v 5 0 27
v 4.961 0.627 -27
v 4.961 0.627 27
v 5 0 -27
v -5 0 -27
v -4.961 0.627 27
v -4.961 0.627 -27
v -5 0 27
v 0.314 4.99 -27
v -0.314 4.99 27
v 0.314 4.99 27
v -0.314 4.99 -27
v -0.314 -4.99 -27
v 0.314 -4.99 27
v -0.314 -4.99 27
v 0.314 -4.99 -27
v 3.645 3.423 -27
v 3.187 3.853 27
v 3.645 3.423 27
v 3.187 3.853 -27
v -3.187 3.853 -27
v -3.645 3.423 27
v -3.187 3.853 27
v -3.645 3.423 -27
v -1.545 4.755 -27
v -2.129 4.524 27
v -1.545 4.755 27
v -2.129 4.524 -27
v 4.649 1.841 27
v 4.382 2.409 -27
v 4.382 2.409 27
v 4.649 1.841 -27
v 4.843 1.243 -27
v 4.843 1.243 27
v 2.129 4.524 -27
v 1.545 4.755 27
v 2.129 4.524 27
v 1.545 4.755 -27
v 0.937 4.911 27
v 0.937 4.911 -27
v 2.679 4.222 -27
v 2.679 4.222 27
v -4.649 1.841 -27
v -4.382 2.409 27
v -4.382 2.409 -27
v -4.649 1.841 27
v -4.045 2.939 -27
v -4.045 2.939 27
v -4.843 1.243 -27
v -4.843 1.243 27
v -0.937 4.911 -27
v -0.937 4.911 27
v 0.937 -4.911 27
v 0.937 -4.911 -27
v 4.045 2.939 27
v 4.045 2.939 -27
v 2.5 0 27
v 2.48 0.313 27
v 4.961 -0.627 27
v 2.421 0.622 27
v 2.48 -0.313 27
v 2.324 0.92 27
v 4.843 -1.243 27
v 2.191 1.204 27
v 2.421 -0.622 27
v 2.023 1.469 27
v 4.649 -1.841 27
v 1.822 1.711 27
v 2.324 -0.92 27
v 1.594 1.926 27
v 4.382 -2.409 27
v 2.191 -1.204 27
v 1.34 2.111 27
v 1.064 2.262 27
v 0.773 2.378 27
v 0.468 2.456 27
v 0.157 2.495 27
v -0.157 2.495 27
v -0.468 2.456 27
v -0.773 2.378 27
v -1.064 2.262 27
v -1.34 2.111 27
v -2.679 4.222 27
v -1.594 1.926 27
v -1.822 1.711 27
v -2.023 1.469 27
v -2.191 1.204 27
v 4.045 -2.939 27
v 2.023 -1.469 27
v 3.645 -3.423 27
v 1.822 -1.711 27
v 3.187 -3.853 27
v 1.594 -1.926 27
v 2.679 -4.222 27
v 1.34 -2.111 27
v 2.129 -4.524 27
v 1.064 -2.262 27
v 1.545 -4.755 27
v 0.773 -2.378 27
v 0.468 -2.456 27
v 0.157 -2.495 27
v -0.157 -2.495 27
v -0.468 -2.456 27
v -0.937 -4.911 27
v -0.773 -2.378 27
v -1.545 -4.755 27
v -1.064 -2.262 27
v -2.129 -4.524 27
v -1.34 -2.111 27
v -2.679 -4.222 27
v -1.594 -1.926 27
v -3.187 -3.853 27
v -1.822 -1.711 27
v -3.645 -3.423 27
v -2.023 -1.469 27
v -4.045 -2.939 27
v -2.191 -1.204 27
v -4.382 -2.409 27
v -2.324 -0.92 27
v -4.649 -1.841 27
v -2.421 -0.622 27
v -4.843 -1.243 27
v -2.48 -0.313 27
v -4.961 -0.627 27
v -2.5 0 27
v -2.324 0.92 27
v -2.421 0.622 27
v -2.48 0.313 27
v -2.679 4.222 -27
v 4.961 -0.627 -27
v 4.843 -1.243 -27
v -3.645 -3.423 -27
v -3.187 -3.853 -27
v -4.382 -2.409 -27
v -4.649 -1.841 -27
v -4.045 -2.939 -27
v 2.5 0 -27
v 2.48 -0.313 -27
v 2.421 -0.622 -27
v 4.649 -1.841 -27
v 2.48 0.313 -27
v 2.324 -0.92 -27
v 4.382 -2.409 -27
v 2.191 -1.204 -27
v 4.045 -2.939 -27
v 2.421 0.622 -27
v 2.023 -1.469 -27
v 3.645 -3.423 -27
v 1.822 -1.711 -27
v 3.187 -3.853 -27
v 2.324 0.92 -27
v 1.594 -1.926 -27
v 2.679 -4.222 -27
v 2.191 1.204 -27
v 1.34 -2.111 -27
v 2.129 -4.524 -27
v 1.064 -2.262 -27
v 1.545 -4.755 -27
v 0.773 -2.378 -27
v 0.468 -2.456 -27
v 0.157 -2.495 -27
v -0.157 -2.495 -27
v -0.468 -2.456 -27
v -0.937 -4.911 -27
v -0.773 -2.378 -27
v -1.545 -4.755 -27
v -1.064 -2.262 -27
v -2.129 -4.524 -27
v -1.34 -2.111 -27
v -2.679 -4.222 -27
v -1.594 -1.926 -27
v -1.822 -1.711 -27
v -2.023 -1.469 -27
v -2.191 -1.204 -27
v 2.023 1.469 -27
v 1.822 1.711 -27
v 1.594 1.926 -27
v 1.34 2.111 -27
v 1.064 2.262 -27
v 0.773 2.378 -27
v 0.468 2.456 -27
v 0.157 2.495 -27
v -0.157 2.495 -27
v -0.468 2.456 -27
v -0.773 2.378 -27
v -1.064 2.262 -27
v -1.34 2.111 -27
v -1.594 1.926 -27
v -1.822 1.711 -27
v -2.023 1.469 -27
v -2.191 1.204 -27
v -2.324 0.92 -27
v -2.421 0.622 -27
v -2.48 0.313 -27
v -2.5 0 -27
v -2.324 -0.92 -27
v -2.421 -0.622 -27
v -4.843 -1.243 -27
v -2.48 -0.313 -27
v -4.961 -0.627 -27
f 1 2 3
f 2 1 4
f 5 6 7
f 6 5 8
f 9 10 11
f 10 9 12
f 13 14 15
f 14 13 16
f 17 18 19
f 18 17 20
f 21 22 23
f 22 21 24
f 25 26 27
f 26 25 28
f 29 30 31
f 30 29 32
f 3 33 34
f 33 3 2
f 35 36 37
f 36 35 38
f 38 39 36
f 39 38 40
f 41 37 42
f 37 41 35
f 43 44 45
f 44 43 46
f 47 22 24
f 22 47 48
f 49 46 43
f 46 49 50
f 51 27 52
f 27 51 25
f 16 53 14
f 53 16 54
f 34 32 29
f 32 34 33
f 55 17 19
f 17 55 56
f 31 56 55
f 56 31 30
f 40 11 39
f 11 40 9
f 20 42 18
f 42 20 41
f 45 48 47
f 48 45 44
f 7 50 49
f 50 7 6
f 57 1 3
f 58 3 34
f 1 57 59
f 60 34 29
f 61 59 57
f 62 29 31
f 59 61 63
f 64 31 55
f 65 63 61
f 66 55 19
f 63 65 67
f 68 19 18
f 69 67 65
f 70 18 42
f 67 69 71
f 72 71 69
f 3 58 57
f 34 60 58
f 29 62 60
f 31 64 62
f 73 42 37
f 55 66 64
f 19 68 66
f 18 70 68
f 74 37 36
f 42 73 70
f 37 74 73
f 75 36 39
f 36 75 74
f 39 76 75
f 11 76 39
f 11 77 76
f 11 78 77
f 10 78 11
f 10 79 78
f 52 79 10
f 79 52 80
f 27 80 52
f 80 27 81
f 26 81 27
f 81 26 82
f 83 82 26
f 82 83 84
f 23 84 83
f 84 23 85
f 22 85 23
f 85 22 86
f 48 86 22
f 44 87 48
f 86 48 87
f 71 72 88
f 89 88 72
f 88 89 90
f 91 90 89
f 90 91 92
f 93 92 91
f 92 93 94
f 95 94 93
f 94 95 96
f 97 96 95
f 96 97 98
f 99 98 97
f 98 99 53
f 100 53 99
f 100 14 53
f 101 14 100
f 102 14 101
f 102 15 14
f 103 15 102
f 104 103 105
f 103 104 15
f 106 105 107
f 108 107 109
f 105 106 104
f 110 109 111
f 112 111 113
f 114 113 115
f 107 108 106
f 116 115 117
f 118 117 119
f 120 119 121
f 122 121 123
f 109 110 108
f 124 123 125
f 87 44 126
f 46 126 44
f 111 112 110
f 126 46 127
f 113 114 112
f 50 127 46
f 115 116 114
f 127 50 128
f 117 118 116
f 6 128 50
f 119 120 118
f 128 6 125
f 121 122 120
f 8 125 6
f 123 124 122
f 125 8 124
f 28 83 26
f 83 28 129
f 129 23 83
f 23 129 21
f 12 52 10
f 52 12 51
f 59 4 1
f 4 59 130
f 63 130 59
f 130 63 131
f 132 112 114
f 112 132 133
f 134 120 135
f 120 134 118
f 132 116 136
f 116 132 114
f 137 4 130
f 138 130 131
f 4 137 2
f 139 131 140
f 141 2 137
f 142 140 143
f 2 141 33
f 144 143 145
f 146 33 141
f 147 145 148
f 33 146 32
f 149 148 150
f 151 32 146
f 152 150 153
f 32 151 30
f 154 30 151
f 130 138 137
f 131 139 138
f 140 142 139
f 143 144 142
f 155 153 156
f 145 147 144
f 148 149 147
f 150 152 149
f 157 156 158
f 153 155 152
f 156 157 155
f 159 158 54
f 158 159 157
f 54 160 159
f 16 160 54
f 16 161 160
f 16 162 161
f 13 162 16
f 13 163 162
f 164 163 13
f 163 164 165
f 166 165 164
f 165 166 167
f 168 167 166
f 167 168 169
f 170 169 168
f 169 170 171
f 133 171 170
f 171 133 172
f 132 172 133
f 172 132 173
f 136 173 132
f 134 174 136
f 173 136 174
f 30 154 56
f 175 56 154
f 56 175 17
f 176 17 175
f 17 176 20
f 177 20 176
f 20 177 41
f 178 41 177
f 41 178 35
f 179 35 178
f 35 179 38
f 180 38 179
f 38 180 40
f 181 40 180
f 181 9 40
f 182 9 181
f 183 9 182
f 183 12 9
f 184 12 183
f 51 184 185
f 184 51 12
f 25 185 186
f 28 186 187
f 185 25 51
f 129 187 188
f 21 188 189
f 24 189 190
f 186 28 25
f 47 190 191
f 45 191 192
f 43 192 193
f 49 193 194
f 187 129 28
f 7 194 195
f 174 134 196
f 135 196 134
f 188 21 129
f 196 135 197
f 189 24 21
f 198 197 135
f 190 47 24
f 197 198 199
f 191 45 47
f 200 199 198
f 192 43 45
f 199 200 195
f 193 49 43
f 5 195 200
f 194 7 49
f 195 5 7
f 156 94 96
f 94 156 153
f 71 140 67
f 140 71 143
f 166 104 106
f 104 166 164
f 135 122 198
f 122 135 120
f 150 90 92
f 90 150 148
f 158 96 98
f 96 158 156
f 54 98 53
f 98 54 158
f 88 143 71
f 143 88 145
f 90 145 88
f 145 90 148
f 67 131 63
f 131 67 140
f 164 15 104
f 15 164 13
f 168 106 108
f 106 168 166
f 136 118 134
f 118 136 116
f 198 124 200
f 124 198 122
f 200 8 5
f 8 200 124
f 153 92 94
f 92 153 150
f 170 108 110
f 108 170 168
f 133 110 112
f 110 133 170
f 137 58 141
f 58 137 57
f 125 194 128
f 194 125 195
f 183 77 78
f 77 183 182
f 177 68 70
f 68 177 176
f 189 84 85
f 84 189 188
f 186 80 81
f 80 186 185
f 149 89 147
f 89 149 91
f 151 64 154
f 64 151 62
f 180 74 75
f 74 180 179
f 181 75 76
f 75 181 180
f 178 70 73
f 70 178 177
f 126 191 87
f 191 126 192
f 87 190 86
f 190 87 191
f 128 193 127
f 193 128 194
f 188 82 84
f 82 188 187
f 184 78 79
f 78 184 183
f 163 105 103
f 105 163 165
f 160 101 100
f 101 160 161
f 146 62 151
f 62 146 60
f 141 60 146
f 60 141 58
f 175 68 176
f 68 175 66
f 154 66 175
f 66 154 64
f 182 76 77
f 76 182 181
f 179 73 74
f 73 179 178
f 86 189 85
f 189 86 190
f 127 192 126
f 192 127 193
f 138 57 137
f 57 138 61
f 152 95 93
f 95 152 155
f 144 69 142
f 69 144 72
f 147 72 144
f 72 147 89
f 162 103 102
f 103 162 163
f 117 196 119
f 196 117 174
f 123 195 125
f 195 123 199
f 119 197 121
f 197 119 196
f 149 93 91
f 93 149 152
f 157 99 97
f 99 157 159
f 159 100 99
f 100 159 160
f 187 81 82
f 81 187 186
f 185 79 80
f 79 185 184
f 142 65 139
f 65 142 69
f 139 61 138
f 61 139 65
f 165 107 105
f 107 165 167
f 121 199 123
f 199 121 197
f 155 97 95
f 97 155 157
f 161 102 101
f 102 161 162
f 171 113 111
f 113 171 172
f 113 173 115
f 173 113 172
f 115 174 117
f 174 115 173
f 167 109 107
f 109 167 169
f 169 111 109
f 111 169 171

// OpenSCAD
$fn = 50;


difference() {
	union() {
		translate(v = [0, 0, -27.0000000000]) {
			cylinder(h = 54, r = 5.0000000000);
		}
	}
	union() {
		translate(v = [0, 0, -100.0000000000]) {
			cylinder(h = 200, r = 2.5000000000);
		}
	}
}
